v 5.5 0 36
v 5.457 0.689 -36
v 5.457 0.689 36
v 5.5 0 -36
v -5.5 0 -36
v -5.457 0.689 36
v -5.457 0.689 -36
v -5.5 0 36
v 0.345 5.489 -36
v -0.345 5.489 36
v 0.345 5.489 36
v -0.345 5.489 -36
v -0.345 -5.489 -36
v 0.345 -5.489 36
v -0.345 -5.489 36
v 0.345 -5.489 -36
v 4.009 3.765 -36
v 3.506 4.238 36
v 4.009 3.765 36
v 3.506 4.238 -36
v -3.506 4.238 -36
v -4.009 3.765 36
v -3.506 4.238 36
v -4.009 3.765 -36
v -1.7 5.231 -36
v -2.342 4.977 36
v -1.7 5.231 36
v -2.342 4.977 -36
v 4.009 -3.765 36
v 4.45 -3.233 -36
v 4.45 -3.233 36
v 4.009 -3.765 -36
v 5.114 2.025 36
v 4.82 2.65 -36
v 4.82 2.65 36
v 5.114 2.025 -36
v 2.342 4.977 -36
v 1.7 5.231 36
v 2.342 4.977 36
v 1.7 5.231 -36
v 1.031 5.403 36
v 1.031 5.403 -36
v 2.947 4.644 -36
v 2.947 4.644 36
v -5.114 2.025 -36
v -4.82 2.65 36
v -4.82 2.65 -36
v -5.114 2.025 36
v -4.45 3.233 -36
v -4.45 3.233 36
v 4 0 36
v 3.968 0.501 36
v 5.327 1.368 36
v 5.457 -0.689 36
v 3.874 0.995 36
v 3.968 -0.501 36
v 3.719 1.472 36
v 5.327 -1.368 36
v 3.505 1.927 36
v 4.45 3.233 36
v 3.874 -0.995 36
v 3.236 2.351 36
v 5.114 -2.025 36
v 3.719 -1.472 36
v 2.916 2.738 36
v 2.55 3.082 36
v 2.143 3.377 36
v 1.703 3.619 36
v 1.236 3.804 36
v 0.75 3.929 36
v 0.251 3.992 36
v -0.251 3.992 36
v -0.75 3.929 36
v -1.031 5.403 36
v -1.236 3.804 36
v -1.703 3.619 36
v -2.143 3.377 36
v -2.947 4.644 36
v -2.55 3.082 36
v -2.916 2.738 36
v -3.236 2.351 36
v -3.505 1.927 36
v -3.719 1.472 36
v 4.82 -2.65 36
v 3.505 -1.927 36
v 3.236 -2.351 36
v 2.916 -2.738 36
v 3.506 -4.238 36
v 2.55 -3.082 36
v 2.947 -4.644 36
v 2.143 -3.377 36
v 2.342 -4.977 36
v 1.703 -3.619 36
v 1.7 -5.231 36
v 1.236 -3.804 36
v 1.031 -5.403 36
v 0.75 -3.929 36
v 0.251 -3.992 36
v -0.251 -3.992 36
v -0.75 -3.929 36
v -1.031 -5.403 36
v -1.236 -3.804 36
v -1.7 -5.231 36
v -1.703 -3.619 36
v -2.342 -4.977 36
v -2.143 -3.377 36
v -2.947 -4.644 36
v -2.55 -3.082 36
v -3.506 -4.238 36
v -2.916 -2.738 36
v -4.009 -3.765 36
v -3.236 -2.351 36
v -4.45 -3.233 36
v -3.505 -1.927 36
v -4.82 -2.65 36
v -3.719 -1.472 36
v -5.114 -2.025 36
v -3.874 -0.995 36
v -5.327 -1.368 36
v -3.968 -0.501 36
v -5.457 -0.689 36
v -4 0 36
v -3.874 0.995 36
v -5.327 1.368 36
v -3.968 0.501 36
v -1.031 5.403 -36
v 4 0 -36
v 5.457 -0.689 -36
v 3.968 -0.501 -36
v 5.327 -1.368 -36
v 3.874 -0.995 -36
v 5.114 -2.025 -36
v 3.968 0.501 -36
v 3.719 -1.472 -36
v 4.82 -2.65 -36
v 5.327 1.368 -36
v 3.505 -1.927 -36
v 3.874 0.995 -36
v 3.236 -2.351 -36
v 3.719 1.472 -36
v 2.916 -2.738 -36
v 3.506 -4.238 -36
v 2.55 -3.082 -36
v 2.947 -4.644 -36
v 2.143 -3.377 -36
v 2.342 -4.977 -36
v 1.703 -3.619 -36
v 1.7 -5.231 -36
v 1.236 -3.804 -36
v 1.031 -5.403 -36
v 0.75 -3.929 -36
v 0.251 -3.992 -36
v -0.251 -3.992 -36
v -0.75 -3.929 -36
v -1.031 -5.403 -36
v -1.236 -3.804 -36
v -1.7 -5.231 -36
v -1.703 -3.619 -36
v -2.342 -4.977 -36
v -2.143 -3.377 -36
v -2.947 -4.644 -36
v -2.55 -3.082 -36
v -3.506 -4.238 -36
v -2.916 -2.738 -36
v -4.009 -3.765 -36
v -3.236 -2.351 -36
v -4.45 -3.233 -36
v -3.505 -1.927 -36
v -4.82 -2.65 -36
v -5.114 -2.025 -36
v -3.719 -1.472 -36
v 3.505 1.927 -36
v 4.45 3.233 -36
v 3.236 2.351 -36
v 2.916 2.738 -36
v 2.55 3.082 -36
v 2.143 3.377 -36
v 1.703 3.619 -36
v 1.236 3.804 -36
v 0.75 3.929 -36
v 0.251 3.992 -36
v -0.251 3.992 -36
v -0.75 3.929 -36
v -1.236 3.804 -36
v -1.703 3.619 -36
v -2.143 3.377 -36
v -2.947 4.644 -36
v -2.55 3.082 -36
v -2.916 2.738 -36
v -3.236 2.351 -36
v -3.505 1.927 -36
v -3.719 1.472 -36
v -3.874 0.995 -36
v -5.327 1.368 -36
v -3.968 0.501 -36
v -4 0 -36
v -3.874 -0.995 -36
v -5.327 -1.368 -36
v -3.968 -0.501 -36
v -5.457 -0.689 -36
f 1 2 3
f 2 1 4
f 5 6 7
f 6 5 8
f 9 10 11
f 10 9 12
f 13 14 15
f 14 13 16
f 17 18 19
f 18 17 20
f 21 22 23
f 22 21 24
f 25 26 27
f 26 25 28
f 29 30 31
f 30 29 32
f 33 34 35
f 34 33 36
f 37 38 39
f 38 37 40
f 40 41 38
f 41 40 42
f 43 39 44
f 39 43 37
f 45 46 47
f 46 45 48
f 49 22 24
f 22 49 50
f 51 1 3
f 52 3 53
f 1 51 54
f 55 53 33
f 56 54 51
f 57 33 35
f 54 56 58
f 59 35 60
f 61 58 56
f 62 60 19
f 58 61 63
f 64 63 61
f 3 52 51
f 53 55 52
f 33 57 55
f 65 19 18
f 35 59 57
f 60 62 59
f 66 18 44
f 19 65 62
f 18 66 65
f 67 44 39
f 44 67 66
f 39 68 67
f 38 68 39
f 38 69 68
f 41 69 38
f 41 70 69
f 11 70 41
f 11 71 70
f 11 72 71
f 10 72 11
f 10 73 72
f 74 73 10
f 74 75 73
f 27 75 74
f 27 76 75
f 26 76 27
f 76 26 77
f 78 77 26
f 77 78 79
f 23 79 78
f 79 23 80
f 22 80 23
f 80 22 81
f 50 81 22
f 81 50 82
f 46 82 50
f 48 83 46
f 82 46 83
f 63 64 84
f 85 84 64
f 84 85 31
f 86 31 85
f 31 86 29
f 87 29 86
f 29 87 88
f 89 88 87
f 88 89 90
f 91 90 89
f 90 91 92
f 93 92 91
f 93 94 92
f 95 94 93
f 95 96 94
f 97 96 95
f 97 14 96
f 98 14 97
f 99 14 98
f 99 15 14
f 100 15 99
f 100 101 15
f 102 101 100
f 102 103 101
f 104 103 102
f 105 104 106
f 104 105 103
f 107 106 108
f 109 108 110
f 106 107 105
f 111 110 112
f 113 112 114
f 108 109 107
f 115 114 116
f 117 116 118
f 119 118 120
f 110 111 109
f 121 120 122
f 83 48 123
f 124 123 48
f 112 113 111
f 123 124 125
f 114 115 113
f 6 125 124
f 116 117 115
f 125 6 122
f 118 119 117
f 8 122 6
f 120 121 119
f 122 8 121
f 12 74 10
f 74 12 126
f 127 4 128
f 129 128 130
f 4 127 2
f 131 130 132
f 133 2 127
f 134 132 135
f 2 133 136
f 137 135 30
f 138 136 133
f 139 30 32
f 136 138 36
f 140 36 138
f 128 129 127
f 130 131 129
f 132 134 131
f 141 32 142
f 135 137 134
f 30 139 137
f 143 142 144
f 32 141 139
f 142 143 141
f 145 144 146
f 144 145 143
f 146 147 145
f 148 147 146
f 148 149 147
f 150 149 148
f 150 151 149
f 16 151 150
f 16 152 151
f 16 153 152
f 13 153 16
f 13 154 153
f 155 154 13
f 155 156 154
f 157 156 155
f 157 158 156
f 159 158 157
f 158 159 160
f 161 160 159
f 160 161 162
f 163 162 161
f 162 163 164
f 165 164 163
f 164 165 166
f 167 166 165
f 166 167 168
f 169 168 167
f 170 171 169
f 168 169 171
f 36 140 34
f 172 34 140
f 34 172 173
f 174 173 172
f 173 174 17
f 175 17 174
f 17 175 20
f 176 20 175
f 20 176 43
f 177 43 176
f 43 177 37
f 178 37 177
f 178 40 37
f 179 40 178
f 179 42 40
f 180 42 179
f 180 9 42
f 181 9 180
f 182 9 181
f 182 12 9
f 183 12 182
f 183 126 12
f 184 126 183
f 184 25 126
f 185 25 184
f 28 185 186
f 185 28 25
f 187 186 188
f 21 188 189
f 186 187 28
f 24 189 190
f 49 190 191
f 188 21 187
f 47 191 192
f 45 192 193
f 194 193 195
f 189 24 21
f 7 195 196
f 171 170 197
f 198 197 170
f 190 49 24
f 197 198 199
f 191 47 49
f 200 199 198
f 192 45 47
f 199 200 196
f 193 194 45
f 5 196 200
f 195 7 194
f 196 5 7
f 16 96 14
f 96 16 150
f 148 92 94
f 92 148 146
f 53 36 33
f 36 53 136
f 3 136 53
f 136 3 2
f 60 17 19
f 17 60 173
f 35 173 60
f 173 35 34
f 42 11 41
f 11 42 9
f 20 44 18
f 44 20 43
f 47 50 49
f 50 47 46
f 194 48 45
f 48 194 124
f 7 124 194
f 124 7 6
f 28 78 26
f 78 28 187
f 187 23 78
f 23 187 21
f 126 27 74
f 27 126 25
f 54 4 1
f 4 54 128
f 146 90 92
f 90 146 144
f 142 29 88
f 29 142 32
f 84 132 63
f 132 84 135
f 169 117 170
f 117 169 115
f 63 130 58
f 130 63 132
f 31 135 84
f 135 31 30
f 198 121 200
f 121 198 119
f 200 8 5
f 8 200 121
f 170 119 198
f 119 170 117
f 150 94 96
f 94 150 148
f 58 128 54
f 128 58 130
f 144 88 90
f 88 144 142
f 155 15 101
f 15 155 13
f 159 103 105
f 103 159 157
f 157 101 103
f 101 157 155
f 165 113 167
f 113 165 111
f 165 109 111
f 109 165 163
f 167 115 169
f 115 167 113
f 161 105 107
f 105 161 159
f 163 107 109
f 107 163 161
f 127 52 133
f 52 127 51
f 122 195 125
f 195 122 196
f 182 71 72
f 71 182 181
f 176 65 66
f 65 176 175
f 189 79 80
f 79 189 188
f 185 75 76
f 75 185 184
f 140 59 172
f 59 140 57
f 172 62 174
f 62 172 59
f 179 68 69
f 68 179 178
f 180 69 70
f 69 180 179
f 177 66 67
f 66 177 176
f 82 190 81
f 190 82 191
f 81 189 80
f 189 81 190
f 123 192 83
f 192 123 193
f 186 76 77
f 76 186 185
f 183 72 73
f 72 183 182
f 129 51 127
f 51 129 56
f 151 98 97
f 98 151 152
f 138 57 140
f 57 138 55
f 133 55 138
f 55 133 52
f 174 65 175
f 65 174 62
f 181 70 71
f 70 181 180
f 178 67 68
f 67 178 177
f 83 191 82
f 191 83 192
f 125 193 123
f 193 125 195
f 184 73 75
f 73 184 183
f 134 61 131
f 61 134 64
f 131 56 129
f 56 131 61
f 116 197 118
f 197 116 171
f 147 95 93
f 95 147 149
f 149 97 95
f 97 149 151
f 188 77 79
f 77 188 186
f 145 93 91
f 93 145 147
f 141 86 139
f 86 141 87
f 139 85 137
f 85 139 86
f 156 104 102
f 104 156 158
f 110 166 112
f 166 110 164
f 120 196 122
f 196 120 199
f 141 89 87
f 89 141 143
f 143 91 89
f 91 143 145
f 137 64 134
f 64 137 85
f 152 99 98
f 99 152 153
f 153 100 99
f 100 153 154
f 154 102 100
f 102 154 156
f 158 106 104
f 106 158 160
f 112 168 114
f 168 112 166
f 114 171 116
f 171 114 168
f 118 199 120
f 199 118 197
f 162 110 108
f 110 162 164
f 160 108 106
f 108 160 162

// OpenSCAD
$fn = 50;


difference() {
	union() {
		translate(v = [0, 0, -36.0000000000]) {
			cylinder(h = 72, r = 5.5000000000);
		}
	}
	union() {
		translate(v = [0, 0, -100.0000000000]) {
			cylinder(h = 200, r = 4);
		}
	}
}
